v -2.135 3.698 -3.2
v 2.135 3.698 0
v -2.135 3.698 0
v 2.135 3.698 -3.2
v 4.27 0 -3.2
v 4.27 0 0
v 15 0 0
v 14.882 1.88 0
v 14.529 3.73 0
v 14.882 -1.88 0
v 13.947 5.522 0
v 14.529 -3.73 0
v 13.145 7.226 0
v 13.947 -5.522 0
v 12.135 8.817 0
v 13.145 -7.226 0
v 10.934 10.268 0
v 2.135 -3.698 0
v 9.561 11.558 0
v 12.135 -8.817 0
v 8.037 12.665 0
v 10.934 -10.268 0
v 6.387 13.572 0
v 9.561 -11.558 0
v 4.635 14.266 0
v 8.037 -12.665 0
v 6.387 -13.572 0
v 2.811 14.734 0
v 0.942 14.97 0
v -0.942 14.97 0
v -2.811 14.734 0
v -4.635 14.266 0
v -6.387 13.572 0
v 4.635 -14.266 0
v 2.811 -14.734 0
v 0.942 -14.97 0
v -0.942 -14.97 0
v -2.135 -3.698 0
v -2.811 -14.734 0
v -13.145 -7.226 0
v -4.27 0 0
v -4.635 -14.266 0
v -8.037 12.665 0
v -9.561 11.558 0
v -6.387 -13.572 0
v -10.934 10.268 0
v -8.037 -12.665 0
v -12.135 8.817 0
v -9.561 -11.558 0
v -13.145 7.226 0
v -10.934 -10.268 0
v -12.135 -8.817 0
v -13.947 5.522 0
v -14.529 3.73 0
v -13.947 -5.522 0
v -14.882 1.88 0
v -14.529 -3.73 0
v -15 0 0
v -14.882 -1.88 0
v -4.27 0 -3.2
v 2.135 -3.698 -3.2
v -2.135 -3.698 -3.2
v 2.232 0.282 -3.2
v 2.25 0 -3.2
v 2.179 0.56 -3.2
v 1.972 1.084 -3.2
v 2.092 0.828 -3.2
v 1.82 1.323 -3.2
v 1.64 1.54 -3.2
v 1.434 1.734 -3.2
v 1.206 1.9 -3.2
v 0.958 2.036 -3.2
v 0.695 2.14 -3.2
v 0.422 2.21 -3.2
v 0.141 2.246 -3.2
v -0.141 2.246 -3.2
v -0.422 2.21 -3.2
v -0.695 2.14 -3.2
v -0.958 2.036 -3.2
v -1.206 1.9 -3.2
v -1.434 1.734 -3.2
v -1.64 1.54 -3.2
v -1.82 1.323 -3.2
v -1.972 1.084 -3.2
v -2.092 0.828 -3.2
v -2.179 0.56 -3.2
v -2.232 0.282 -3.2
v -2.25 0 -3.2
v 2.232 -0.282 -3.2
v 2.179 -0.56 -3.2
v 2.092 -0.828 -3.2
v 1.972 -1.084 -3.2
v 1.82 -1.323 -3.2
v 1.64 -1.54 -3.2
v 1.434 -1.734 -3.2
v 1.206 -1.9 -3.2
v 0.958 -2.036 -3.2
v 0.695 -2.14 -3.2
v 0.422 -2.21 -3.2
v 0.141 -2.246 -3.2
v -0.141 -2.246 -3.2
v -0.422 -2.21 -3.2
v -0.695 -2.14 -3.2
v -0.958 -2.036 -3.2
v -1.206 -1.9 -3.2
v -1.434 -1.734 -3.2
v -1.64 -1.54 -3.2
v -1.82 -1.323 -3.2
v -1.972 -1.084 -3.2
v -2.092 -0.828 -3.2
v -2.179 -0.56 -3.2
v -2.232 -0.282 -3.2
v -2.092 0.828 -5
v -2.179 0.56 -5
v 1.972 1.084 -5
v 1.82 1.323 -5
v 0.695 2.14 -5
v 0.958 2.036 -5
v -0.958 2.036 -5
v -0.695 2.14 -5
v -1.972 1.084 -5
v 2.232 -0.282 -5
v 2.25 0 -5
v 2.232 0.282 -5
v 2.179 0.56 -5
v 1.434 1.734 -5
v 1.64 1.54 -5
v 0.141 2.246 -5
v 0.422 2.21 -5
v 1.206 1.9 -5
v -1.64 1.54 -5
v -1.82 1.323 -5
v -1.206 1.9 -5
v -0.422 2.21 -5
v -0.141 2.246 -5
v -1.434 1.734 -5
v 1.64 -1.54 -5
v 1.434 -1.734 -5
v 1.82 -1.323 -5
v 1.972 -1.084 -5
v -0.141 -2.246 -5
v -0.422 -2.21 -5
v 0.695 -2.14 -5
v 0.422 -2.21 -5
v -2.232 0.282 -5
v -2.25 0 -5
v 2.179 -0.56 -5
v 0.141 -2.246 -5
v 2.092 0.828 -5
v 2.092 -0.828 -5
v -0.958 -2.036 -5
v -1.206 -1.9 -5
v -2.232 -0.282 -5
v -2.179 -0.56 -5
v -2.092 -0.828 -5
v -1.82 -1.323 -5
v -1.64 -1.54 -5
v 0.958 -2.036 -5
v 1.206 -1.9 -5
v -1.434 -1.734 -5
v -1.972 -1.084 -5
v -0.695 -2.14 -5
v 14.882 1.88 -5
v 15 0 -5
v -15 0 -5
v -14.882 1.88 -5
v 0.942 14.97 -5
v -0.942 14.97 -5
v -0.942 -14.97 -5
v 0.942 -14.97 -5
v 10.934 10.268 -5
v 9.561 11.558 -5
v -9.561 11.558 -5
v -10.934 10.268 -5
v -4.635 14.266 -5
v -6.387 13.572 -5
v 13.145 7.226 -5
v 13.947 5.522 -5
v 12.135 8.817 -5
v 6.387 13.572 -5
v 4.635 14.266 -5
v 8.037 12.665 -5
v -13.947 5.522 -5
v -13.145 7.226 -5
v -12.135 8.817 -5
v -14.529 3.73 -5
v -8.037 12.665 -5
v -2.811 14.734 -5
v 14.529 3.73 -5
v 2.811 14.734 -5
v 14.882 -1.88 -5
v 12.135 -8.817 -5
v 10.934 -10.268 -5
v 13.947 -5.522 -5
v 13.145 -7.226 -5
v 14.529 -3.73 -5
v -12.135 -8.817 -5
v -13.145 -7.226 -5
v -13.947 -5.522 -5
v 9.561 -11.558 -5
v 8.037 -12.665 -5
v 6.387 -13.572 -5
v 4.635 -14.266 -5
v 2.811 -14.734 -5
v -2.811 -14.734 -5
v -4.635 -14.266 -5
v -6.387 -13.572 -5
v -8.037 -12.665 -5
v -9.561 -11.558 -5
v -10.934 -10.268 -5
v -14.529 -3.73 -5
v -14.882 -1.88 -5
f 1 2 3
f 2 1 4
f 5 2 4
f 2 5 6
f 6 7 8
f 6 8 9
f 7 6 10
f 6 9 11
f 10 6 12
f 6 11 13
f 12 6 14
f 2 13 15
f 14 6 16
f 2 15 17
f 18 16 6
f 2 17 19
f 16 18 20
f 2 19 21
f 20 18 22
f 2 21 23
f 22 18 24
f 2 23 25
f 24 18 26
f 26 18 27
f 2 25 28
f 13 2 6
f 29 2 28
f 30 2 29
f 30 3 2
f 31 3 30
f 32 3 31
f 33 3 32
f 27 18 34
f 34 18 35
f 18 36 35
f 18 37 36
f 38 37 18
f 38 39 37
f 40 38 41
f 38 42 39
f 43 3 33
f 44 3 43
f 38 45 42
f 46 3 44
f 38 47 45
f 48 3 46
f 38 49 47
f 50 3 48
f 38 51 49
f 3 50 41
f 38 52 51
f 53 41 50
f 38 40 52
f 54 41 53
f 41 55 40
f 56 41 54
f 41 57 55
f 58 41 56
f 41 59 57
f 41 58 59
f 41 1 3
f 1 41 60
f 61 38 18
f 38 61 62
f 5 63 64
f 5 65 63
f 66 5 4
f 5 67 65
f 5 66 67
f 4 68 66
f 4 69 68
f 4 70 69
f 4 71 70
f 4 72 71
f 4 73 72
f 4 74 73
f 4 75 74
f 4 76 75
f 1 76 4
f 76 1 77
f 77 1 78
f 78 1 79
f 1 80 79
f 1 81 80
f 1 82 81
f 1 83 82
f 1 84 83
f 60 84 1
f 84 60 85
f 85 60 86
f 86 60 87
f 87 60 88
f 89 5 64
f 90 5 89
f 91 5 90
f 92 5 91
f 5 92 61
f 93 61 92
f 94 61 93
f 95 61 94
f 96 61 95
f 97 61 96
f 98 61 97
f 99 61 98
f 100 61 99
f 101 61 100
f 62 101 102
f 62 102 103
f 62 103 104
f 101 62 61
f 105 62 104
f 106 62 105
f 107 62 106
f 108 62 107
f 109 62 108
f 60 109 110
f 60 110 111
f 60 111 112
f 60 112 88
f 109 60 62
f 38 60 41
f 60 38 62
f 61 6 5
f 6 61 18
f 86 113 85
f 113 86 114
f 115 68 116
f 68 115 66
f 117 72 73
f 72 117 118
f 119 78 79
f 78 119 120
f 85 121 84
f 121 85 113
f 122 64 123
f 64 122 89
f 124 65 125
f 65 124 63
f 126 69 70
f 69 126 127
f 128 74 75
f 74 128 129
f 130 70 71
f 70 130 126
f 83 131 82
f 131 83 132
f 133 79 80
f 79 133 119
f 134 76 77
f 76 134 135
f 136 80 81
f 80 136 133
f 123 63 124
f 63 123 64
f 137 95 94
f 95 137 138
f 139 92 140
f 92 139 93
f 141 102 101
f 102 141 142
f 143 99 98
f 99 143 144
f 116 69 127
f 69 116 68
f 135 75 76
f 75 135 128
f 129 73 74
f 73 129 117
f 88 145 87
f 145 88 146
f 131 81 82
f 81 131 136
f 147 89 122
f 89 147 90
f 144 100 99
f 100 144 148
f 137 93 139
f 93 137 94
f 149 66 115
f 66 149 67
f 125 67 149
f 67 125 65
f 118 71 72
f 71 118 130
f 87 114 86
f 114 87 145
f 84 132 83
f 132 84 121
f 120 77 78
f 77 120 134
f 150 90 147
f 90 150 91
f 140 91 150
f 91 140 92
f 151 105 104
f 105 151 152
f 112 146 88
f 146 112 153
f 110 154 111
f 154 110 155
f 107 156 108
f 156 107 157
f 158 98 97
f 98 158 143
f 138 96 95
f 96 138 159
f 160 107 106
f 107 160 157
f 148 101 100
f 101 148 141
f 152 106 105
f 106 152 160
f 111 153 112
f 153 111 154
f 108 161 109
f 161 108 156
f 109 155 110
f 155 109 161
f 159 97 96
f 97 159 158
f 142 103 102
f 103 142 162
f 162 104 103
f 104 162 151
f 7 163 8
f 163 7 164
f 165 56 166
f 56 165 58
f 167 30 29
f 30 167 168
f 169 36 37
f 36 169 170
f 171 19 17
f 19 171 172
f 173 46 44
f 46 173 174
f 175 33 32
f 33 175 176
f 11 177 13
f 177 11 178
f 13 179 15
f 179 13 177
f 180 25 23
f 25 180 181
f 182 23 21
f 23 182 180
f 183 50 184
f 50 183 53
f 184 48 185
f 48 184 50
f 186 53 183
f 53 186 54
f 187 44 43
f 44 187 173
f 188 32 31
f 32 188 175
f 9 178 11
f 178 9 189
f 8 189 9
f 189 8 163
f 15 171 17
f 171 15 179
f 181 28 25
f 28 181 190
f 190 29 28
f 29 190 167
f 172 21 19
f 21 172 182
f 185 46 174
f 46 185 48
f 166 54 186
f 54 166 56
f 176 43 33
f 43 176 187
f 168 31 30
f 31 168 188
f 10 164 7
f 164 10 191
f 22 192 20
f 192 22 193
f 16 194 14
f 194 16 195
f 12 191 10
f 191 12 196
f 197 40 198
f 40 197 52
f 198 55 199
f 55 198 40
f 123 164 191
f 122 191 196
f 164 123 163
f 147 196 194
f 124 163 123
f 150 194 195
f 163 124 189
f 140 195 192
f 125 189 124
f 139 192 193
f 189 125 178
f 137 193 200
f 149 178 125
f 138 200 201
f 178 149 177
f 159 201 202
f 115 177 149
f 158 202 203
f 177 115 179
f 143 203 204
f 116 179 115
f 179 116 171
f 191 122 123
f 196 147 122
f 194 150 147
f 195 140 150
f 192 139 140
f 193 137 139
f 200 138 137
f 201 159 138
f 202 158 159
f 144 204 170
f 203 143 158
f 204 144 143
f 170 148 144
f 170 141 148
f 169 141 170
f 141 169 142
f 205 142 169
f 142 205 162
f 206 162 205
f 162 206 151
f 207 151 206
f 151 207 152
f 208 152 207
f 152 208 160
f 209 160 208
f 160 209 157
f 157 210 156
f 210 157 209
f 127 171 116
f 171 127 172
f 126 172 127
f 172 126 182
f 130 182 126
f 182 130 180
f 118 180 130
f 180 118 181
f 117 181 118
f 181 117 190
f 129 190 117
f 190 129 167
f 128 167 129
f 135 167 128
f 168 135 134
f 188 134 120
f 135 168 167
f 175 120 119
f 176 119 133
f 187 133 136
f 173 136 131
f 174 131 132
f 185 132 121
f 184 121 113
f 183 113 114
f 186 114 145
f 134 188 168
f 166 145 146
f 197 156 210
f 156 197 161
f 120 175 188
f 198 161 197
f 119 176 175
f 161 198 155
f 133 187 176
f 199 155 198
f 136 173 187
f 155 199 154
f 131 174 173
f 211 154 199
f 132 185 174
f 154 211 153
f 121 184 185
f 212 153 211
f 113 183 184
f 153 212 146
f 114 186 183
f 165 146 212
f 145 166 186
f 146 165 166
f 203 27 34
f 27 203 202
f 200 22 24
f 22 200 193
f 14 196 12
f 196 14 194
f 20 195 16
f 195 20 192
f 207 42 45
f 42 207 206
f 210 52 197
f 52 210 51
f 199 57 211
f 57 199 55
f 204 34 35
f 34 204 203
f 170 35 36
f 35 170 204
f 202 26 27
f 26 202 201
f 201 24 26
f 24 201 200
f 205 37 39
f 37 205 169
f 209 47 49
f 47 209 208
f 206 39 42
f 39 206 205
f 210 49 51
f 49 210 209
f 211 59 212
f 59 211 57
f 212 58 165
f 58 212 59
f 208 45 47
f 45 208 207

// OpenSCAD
$fn = 50;


difference() {
	union() {
		translate(v = [0, 0, -5.0000000000]) {
			cylinder(h = 5.0000000000, r = 15.0000000000);
		}
	}
	union() {
		translate(v = [0, 0, 0]) {
			rotate(a = [0, 0, 0]) {
				difference() {
					union() {
						translate(v = [0, 0, -3.2000000000]) {
							#linear_extrude(height = 3.2000000000) {
								polygon(points = [[4.2698000000, 0.0000000000], [2.1349000000, 3.6977552691], [-2.1349000000, 3.6977552691], [-4.2698000000, 0.0000000000], [-2.1349000000, -3.6977552691], [2.1349000000, -3.6977552691]]);
							}
						}
					}
					union();
				}
			}
		}
		#translate(v = [0, 0, -100.0000000000]) {
			cylinder(h = 200, r = 2.2500000000);
		}
	}
}
